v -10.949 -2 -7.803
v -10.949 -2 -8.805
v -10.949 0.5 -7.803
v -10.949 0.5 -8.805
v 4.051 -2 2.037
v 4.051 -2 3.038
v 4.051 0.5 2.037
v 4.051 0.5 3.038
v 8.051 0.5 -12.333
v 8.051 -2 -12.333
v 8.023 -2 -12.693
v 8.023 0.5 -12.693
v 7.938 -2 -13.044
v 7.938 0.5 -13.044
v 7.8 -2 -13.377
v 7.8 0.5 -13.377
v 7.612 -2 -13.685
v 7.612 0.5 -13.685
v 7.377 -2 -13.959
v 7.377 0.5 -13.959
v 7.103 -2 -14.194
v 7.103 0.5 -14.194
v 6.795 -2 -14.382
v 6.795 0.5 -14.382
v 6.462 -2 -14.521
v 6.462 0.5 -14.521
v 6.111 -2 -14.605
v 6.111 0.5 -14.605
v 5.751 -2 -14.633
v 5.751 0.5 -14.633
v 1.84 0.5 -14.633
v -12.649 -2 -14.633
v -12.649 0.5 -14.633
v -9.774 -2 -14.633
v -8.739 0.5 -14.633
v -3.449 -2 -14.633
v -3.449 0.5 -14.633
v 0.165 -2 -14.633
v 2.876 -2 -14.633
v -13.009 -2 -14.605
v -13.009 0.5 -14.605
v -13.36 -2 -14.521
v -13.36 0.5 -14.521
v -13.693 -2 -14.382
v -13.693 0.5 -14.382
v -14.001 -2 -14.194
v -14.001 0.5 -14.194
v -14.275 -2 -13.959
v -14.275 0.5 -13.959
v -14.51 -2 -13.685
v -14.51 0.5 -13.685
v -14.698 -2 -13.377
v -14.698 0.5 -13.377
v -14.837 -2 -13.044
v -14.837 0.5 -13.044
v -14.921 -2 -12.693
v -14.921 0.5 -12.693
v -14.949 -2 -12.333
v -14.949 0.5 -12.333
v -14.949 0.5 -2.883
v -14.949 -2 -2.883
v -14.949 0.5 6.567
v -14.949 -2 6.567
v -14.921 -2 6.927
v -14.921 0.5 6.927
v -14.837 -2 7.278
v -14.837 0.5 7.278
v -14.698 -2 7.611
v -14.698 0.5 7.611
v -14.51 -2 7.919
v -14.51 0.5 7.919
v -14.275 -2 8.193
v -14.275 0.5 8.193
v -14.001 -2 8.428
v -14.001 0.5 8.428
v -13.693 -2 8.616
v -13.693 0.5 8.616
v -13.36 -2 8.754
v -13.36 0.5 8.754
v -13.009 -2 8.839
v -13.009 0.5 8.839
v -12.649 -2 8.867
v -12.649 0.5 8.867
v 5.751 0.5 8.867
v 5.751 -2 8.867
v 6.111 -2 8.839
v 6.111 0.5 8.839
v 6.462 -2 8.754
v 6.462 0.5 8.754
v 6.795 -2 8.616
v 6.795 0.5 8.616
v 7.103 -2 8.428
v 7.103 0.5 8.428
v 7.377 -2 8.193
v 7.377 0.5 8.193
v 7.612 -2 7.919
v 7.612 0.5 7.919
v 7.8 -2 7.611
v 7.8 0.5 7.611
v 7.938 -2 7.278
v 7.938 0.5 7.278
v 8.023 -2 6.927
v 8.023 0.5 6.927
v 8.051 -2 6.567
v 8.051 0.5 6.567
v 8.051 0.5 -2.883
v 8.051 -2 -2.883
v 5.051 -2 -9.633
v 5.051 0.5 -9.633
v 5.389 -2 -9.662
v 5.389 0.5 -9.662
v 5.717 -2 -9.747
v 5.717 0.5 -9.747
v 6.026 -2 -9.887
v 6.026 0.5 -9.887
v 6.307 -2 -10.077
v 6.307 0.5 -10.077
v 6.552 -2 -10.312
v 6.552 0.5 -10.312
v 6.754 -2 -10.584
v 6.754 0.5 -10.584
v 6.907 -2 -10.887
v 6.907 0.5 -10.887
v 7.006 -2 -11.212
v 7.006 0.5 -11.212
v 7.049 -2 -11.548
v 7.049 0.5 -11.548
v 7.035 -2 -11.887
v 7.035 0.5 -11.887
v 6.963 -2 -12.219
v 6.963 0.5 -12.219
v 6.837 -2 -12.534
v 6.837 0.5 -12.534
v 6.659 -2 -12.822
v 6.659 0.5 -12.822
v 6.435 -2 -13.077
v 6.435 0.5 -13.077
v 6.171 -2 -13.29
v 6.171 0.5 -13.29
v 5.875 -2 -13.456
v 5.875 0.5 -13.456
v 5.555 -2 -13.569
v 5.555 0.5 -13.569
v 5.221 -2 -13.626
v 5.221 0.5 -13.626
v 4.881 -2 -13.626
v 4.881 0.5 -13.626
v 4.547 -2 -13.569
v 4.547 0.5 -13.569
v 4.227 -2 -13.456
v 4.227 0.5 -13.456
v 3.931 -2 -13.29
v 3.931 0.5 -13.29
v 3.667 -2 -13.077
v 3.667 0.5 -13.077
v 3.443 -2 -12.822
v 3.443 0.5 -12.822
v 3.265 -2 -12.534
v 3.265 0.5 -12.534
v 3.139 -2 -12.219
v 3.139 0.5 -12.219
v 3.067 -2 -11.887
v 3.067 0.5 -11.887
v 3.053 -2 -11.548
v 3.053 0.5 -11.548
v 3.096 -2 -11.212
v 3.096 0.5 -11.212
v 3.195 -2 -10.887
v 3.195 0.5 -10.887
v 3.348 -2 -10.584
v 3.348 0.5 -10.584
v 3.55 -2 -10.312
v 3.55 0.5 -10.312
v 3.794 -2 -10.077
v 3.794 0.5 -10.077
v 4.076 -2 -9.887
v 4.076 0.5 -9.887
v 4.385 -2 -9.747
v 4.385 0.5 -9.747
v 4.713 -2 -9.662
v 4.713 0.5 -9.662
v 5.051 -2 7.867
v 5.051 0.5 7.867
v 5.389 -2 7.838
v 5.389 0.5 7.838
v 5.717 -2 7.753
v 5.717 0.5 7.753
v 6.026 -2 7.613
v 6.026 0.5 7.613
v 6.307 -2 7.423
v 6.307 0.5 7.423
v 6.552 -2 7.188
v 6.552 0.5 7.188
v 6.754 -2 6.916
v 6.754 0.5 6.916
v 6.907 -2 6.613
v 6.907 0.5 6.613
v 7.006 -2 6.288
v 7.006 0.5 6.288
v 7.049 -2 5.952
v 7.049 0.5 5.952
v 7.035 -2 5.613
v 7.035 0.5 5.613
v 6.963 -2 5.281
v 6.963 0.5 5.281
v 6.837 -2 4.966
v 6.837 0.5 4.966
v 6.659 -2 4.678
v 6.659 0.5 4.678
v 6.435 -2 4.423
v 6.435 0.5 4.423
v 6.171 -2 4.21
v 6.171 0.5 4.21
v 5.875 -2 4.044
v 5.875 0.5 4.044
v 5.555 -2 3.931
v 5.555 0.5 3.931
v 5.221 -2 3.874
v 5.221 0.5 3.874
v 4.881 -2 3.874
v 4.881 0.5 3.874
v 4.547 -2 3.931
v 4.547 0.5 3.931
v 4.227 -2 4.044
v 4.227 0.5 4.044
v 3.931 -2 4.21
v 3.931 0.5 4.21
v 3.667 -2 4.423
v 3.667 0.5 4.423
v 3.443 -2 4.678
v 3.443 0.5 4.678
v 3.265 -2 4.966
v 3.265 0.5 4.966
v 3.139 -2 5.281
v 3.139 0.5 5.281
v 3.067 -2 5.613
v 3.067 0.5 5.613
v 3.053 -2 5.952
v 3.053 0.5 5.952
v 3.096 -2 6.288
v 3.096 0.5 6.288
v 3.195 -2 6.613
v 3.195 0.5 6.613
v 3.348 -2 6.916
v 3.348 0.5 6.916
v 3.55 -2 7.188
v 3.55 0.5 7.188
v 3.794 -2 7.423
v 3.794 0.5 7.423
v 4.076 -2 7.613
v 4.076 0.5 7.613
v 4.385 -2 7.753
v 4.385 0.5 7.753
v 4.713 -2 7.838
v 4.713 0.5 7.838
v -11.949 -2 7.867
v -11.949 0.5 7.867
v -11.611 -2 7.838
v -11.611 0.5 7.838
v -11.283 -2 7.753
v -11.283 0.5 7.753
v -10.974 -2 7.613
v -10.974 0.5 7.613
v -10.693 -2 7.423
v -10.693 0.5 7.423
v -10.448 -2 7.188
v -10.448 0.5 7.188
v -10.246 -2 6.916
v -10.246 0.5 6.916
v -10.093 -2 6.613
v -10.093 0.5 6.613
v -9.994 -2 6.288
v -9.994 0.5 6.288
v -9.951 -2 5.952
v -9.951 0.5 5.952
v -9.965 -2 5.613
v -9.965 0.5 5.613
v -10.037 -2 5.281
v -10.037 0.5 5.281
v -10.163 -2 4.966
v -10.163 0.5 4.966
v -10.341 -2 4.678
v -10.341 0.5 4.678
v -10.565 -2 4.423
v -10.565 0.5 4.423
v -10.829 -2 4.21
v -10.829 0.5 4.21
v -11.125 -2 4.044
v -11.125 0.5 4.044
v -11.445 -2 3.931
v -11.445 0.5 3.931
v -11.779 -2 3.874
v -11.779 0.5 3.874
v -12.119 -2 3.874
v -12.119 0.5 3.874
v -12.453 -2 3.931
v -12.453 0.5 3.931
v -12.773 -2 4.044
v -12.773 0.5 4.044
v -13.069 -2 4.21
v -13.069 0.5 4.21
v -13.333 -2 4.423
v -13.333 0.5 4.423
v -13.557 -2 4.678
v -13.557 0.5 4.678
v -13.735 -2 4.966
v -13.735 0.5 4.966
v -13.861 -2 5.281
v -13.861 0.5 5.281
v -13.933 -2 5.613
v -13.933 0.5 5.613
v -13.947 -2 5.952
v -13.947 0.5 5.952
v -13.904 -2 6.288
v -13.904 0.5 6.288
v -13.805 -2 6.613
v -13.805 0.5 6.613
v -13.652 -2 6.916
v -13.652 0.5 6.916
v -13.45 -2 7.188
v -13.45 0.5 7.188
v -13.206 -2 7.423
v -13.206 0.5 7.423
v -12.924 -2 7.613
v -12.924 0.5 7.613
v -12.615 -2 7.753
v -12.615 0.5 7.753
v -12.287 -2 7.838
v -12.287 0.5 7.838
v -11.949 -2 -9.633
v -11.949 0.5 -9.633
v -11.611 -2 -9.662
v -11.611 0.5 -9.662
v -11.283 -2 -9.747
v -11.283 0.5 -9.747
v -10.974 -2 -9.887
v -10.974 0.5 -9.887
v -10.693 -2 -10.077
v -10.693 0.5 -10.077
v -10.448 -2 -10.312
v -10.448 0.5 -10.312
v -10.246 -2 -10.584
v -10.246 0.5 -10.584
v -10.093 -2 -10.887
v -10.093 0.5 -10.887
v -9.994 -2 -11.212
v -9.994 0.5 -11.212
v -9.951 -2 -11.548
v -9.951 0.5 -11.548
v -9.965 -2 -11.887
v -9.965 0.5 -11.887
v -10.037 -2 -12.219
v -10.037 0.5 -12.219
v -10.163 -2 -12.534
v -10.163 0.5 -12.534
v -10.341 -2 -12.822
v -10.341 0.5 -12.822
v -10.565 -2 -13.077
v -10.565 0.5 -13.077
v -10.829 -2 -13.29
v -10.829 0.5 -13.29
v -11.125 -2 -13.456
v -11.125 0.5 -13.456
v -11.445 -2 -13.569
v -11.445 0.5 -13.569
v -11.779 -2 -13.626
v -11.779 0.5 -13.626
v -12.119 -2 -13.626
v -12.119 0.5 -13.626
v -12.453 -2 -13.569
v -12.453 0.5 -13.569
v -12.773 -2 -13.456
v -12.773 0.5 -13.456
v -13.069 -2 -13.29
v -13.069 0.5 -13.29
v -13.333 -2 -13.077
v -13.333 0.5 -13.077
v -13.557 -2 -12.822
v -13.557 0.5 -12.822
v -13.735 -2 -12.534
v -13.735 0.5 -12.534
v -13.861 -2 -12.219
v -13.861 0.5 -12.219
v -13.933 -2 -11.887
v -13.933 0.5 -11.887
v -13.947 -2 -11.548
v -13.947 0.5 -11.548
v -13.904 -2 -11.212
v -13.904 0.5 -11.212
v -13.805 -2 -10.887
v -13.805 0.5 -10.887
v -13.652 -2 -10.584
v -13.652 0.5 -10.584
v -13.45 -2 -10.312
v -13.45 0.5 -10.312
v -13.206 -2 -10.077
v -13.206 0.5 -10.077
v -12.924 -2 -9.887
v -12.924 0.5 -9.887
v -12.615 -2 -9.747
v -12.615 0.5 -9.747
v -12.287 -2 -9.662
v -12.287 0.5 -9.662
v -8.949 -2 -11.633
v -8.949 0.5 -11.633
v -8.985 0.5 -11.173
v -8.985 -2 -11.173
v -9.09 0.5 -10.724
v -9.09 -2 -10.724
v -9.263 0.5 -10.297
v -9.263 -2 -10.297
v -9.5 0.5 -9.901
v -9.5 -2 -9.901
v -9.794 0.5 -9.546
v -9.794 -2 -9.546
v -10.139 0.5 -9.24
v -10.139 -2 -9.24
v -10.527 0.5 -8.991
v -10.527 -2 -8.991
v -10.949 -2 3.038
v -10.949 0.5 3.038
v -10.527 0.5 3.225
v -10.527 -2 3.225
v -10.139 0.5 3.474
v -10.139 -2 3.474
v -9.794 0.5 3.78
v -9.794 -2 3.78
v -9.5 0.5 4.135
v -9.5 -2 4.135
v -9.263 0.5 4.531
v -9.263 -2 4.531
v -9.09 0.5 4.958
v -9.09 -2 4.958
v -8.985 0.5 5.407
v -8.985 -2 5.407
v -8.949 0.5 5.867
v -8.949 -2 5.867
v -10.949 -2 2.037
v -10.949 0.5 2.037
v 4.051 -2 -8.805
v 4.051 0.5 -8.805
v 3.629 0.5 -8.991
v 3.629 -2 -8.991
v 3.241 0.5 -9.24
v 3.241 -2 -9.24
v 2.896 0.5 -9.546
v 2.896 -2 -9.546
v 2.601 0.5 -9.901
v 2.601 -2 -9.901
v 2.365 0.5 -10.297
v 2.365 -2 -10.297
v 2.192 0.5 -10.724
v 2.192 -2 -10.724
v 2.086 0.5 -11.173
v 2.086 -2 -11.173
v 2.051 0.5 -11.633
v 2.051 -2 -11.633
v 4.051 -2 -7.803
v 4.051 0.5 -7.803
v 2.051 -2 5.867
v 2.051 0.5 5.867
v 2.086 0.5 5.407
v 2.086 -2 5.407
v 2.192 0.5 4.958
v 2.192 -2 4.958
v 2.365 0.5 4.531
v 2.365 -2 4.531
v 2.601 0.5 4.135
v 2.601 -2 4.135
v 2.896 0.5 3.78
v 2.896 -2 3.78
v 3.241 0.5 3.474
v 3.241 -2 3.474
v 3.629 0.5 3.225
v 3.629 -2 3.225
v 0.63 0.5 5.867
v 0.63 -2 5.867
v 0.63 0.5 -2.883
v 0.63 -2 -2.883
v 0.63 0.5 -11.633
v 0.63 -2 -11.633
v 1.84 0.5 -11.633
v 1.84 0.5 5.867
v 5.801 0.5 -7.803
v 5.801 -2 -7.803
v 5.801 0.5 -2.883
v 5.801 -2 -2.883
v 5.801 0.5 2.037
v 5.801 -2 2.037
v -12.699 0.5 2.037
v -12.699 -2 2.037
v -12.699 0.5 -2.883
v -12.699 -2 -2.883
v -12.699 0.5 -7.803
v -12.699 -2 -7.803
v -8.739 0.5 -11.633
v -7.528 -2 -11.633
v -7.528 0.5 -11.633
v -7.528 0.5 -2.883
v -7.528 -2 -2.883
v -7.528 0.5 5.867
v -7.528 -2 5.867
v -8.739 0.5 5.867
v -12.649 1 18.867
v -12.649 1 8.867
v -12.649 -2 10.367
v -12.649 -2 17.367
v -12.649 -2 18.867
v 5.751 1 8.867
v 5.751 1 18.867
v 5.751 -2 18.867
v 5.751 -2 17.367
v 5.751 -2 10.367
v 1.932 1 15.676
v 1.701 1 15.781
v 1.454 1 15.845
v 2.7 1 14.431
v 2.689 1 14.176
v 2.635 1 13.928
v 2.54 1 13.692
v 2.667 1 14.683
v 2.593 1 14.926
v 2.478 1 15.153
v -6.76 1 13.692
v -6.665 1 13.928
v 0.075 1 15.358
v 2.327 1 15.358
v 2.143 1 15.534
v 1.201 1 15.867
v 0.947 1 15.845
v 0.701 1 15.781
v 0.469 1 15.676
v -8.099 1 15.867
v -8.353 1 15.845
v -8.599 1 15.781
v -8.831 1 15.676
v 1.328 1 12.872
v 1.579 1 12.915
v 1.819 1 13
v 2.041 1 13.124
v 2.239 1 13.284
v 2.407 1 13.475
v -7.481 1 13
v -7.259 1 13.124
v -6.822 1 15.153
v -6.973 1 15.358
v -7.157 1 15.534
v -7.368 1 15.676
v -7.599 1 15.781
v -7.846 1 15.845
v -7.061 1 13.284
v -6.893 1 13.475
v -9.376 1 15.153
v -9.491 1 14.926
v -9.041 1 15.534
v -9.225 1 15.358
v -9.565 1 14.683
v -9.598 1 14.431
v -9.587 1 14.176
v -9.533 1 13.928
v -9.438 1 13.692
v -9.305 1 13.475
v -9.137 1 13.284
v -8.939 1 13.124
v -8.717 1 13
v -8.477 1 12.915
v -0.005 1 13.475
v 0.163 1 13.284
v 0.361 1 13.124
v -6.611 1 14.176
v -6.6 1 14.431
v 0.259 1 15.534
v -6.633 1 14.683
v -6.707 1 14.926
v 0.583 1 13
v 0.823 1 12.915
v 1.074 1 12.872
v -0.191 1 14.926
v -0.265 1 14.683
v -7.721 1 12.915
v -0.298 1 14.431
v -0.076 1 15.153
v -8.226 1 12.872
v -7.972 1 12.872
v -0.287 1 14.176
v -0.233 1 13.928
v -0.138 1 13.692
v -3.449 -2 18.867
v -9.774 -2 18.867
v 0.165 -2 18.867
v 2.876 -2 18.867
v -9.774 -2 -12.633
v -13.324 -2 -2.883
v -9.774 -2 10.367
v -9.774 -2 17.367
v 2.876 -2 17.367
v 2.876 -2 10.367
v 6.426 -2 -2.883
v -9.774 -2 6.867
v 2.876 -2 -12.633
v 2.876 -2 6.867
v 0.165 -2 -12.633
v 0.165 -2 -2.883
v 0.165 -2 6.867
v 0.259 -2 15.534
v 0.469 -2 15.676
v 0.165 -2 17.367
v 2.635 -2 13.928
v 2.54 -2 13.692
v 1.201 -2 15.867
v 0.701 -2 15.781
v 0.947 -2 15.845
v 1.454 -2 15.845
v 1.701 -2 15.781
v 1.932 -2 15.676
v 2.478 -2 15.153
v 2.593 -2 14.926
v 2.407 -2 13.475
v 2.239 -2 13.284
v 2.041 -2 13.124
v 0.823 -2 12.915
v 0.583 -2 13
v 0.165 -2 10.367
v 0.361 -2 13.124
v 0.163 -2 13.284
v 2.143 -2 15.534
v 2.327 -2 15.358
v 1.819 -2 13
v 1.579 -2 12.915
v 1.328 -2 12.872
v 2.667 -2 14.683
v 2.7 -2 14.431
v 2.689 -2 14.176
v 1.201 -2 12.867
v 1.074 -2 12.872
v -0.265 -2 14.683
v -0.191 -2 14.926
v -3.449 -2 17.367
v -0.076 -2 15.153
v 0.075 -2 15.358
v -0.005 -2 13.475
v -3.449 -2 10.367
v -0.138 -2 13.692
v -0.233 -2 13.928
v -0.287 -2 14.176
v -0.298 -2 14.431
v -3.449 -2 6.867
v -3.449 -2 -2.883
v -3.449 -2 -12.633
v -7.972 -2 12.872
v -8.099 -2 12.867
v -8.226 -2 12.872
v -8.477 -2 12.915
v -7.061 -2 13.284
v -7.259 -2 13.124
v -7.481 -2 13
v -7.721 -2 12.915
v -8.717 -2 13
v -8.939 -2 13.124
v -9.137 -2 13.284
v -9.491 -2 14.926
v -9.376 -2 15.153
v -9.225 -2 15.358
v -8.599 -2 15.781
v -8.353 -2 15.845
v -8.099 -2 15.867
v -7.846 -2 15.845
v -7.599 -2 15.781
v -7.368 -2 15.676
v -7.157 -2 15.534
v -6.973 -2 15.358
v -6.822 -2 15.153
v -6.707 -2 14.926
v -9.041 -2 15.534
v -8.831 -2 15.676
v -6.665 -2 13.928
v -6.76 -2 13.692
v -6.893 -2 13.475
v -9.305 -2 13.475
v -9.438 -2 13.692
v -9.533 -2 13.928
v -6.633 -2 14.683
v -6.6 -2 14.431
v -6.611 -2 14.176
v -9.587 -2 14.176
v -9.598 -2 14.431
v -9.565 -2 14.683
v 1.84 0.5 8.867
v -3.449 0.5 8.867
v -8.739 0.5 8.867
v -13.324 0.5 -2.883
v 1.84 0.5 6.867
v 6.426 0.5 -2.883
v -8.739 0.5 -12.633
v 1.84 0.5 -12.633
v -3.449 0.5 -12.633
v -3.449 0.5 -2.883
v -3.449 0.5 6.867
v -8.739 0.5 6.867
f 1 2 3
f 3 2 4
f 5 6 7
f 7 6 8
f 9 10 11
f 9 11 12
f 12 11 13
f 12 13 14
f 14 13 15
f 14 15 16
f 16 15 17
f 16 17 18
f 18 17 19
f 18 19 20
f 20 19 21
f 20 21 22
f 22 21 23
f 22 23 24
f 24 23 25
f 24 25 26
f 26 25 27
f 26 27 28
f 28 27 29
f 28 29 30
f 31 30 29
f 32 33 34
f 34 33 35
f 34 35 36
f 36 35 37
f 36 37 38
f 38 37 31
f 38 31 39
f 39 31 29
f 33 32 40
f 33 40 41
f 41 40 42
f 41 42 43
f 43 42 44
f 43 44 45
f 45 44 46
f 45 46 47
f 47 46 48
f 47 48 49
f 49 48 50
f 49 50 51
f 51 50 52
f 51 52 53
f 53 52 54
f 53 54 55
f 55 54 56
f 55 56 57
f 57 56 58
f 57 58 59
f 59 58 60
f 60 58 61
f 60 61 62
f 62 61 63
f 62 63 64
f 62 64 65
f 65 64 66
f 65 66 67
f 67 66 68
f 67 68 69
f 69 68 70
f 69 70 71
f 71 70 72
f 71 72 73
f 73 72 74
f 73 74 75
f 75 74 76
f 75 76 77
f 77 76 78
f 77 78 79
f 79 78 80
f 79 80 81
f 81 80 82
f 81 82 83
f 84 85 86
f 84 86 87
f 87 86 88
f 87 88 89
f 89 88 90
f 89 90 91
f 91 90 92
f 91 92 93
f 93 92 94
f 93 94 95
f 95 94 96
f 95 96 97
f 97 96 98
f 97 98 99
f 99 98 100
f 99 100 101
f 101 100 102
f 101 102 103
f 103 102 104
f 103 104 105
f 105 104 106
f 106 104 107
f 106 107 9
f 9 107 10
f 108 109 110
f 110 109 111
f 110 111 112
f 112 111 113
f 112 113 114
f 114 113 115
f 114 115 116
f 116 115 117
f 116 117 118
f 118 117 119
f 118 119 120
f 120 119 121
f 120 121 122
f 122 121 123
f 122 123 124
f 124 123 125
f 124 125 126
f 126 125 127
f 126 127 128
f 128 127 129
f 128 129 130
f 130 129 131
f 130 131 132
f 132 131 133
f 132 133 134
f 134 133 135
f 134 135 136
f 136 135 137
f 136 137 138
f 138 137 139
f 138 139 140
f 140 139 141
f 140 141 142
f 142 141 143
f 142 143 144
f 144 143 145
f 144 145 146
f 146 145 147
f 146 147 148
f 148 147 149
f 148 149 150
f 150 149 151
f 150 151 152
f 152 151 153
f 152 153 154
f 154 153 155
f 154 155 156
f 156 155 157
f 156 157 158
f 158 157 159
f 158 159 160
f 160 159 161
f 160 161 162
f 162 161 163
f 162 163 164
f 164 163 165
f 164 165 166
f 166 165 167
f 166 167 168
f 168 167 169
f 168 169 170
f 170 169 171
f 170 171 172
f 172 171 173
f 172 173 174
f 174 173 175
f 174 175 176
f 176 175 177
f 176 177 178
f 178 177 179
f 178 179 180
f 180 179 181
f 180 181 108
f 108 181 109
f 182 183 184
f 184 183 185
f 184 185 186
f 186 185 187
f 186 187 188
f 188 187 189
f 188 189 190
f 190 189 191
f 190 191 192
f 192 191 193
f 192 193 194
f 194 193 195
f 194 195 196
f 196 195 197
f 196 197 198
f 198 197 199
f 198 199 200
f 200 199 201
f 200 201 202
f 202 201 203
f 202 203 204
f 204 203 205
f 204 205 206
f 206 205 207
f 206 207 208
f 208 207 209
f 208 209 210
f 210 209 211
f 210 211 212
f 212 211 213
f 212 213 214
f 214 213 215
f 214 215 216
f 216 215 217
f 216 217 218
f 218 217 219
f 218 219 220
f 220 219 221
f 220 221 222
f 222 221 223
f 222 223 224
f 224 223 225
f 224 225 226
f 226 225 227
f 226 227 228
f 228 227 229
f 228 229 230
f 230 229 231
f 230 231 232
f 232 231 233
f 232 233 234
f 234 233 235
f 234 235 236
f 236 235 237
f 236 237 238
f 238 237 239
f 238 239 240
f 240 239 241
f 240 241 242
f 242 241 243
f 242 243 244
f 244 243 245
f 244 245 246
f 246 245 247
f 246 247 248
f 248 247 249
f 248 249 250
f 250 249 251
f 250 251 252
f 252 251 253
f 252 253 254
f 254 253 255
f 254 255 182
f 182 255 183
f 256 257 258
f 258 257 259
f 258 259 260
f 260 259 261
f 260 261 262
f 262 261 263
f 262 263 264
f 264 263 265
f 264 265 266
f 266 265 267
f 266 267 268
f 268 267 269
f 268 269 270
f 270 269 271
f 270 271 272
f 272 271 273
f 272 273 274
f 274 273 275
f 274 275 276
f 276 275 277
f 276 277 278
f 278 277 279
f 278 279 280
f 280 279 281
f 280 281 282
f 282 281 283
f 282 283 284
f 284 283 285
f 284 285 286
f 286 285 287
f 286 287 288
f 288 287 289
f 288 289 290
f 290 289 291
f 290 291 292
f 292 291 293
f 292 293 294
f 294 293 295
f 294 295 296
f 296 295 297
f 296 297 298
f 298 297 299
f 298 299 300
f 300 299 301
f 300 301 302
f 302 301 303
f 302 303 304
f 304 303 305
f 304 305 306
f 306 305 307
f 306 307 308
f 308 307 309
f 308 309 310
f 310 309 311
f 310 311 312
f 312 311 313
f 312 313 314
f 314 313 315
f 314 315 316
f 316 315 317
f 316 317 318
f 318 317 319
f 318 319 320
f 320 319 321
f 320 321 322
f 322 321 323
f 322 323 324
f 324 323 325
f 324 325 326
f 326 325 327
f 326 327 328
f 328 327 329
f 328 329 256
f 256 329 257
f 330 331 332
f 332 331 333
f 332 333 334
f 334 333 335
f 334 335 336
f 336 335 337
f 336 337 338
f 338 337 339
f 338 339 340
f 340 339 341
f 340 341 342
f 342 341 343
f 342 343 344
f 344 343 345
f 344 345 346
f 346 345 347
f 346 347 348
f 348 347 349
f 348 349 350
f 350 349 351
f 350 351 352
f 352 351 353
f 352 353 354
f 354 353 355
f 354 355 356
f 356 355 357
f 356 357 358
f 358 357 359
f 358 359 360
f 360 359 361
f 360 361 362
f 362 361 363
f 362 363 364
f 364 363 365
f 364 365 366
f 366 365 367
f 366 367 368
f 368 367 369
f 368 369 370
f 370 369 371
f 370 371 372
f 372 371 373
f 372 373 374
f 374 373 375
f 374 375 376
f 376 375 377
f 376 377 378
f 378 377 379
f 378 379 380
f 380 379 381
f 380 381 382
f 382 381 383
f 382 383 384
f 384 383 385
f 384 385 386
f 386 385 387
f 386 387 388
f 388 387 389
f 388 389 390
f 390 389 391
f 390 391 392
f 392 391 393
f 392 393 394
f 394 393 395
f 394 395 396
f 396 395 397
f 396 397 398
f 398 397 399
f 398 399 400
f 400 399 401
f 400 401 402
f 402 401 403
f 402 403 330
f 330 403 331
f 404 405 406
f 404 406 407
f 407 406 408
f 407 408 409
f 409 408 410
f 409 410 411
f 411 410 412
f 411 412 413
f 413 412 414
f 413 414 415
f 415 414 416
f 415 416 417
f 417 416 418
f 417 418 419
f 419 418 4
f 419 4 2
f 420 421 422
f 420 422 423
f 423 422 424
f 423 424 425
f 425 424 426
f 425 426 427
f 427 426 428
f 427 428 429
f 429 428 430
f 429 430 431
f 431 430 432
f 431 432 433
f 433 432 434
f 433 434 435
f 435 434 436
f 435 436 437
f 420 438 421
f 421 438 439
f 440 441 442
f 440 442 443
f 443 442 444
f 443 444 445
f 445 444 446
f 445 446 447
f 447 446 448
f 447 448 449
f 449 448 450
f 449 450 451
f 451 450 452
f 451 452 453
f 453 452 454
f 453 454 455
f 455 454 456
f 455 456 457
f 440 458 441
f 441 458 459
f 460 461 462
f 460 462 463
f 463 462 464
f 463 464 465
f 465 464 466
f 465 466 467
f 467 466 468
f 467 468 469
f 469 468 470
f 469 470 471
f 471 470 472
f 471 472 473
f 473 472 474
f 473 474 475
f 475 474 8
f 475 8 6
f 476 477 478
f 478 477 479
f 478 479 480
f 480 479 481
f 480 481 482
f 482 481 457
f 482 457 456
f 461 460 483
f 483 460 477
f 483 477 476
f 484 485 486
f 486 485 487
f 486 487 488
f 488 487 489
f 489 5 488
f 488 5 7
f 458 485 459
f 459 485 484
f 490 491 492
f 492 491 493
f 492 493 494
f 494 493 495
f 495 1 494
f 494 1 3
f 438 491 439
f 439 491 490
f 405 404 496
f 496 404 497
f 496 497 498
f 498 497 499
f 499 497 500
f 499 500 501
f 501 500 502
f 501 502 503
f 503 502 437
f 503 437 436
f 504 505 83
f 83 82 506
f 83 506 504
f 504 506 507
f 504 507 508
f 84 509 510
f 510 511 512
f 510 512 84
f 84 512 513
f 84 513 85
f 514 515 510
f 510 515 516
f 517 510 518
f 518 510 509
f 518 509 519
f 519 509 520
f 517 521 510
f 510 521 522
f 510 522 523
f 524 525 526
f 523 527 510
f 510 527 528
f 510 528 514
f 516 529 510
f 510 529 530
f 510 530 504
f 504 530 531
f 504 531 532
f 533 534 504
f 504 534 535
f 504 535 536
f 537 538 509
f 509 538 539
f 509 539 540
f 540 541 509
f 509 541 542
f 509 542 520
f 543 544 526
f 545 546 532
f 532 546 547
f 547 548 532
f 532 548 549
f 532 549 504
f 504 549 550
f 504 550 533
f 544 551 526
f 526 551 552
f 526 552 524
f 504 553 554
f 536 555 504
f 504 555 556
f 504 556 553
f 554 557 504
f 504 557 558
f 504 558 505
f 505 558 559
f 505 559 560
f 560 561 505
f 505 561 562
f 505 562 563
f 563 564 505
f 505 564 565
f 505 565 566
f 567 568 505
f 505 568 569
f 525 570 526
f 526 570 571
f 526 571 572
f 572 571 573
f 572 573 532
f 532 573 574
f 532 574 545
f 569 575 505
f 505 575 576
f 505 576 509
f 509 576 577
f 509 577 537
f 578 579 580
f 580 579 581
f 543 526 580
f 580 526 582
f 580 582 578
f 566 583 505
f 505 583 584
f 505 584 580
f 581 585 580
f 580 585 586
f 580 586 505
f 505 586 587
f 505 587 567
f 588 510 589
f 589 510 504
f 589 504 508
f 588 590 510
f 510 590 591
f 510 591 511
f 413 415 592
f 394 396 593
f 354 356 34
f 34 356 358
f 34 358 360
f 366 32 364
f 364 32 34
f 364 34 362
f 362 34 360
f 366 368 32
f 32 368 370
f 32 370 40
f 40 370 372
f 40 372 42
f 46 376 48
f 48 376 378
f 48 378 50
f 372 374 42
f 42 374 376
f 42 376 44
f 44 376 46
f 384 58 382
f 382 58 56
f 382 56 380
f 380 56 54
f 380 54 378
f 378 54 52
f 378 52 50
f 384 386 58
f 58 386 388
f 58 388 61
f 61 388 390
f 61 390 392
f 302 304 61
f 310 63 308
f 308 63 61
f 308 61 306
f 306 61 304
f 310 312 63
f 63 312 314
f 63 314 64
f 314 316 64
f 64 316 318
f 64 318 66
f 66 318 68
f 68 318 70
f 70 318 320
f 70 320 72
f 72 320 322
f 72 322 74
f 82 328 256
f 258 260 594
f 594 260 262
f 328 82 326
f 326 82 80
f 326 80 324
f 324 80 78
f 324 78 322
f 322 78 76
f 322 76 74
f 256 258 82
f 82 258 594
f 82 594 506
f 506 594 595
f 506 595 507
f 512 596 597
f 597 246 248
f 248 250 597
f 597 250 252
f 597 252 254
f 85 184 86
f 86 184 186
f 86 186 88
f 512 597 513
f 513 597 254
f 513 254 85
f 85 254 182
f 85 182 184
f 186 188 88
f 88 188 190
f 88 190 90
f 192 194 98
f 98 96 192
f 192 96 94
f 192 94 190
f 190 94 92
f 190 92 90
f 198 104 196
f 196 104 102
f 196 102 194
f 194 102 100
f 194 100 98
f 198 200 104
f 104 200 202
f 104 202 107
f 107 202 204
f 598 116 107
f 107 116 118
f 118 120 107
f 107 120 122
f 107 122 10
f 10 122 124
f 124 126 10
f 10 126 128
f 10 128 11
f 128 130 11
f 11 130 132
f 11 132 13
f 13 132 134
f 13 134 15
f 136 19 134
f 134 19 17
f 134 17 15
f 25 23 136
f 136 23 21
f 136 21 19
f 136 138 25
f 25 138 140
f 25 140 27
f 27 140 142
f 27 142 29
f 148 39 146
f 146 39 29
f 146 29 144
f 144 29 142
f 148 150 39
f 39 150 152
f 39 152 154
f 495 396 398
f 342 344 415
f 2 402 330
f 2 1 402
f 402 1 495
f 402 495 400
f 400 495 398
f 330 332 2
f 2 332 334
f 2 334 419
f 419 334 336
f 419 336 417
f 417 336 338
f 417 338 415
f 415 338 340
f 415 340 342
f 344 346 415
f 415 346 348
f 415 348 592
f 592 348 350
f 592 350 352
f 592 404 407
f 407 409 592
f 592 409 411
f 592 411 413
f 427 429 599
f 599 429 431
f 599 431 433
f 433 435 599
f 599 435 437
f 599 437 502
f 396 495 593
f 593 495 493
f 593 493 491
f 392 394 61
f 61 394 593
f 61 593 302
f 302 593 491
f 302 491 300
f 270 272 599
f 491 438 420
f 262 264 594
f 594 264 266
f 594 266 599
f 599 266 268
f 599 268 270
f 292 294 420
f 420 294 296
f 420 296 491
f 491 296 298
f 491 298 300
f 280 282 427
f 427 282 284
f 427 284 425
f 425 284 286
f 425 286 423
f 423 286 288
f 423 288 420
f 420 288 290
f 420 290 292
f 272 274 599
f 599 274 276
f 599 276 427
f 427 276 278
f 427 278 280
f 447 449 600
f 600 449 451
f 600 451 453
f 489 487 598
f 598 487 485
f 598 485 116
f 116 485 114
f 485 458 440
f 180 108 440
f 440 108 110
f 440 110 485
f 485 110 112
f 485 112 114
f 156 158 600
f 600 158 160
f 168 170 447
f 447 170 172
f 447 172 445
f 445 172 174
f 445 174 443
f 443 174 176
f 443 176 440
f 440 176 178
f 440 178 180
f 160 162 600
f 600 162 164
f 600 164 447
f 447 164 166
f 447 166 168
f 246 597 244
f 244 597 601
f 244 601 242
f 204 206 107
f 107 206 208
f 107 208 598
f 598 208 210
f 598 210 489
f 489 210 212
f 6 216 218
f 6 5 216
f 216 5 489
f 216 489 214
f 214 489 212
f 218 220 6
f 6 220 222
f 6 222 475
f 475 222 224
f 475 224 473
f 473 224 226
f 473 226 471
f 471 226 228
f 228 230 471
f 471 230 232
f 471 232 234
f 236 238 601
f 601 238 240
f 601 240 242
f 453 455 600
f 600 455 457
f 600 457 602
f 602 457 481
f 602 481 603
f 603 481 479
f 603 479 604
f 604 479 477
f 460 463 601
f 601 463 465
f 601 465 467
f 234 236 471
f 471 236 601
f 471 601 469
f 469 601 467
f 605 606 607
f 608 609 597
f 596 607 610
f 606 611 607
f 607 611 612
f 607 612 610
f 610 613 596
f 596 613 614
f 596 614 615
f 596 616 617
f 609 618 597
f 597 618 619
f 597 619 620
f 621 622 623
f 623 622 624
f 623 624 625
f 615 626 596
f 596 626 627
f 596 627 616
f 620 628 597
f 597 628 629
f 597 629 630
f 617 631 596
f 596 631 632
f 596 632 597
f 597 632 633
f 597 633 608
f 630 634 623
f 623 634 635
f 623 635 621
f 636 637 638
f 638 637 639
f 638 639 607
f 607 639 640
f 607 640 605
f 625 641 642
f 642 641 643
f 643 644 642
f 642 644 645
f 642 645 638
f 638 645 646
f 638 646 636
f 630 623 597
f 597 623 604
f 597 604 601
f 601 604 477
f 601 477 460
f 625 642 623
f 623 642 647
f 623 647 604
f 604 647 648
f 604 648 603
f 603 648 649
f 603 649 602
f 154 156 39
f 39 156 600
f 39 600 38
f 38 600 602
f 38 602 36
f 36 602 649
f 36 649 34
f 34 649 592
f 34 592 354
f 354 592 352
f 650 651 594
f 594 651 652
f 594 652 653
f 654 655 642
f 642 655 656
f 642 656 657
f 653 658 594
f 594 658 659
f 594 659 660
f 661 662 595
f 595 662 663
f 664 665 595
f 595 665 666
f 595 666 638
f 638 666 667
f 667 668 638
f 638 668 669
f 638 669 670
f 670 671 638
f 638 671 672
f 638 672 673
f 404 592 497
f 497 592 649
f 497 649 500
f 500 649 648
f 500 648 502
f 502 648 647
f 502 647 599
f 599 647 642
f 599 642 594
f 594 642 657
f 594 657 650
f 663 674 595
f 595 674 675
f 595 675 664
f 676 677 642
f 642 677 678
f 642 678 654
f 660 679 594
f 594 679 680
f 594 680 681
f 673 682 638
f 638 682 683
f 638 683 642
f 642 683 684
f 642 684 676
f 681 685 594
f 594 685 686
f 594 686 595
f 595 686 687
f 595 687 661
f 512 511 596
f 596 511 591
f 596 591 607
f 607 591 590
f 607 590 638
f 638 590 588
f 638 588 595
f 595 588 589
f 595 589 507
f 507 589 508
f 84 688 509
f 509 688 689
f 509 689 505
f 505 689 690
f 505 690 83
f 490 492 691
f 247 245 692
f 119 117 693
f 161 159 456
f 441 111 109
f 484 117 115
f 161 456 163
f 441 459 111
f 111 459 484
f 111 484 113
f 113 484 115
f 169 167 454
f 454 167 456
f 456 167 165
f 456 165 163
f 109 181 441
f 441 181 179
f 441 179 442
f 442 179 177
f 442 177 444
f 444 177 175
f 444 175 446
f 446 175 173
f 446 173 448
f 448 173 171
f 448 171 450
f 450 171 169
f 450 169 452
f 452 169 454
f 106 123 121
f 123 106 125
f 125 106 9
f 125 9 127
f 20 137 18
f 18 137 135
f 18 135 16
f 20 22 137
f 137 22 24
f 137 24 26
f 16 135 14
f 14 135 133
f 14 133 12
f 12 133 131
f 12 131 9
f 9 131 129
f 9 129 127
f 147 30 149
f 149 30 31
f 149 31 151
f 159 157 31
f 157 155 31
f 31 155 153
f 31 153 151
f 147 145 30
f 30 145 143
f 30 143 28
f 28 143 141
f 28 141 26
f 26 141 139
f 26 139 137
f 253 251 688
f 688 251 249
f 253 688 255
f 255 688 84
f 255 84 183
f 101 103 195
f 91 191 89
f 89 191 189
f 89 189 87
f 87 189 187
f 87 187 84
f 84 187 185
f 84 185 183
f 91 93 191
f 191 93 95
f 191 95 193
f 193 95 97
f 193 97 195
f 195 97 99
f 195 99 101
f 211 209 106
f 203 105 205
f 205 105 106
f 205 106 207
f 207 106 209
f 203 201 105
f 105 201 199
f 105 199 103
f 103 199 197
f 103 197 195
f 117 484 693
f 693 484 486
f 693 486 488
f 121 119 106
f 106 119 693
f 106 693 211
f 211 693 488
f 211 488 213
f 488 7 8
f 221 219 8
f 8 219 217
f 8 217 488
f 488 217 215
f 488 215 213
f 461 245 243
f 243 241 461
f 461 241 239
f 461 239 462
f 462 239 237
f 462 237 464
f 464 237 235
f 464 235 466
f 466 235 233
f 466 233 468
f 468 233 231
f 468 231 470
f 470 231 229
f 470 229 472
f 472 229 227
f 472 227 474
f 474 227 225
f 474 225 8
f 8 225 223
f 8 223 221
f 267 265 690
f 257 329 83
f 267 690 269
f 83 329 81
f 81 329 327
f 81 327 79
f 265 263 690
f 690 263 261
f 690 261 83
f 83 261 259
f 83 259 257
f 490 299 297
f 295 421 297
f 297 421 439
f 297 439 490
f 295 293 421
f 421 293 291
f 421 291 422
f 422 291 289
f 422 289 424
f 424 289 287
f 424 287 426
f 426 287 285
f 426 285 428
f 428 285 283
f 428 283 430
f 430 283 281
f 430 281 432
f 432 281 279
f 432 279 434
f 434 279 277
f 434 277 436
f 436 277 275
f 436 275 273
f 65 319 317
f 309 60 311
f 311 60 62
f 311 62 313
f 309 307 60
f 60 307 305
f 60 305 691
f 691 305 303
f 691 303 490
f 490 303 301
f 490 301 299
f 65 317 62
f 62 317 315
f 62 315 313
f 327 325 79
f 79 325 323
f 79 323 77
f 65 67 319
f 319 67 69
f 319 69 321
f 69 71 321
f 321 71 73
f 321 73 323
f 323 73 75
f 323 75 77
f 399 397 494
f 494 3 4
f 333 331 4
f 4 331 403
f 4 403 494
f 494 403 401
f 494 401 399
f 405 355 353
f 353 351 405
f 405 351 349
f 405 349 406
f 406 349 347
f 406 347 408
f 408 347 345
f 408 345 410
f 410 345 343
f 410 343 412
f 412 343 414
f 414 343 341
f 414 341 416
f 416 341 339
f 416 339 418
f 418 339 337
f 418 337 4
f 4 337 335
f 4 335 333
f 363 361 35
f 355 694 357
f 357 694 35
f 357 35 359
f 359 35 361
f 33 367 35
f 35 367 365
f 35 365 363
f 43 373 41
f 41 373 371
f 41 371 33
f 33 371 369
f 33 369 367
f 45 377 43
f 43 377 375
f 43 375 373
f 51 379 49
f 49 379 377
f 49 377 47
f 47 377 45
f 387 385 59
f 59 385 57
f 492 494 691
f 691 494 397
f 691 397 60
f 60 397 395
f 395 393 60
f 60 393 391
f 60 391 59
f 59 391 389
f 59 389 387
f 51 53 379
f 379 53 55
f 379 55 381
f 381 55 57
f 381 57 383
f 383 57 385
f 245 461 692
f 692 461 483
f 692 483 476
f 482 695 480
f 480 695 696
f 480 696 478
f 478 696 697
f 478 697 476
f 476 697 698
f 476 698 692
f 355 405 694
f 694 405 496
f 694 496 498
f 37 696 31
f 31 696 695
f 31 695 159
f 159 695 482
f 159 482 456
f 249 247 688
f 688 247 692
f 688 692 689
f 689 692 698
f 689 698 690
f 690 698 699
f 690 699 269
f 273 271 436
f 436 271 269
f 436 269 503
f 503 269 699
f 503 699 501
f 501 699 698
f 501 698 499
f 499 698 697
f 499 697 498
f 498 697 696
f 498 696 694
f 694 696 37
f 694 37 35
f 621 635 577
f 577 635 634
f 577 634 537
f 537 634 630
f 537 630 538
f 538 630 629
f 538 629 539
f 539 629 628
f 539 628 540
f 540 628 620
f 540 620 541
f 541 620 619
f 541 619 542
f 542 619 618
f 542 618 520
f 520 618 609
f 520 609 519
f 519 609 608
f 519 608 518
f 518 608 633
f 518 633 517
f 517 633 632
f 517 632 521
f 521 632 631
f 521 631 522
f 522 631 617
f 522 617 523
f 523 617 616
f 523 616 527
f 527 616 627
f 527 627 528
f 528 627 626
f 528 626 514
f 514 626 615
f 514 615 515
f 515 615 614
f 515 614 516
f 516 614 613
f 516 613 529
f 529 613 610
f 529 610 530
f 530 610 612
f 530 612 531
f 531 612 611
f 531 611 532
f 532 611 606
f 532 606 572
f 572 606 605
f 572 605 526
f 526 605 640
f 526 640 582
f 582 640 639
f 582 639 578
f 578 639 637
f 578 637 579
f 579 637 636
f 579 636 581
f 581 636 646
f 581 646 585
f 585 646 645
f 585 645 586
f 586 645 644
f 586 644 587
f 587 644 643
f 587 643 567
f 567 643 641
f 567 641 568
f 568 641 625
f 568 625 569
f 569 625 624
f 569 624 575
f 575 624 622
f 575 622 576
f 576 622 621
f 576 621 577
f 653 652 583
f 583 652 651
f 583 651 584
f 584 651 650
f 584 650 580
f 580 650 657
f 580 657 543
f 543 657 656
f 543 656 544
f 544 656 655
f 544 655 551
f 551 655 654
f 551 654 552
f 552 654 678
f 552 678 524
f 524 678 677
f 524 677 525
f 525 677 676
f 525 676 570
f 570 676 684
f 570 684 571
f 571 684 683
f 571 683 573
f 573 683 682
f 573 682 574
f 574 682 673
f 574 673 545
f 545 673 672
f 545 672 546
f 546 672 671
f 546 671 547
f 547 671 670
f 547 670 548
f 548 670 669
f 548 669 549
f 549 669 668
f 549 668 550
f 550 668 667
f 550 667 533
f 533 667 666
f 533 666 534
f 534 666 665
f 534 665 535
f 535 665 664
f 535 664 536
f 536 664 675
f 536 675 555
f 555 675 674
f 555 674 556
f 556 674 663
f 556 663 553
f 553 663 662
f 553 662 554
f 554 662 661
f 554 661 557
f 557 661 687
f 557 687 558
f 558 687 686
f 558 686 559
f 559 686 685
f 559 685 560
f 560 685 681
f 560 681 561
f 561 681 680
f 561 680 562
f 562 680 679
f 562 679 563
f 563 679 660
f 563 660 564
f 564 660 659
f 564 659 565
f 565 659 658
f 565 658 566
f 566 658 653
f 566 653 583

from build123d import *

# Parameters (mm, degrees)
BOSS_EXTRUDE1_DEPTH      = 2
CUT_EXTRUDE2_DEPTH       = 1
SKETCH5_R                = 2
CUT_EXTRUDE3_DEPTH       = 21.942838525
CUT_EXTRUDE4_DEPTH       = 21.942838525
SKETCH7_W                = 18.4
SKETCH7_H                = 1
BOSS_EXTRUDE2_DEPTH      = 10
CUT_EXTRUDE6_DEPTH       = 1
SKETCH11_W               = 1.421057218
SKETCH11_H               = 17.5
SKETCH11_W_2             = 1.75
SKETCH11_H_2             = 9.84
CUT_EXTRUDE7_DEPTH       = 25.092211634
BOSS_EXTRUDE3_START      = 2
BOSS_EXTRUDE3_DEPTH      = 2
CUT_EXTRUDE8_DEPTH       = 25.154392176
CUT_EXTRUDE8_DEPTH_BACK  = 25.154392176
CUT_EXTRUDE9_DEPTH       = 25.154392176
CUT_EXTRUDE9_DEPTH_BACK  = 25.154392176
CUT_EXTRUDE12_DEPTH      = 25.154392176
CUT_EXTRUDE12_DEPTH_BACK = 25.154392176
SKETCH17_R               = 2
BOSS_EXTRUDE4_START      = 1
BOSS_EXTRUDE4_DEPTH      = 1
CUT_EXTRUDE13_DEPTH      = 25.257672217
CUT_EXTRUDE13_DEPTH_BACK = 25.257672217
SKETCH19_R               = 2
CUT_EXTRUDE14_START      = -1.5
CUT_EXTRUDE14_DEPTH      = 1.5
SKETCH22_R               = 1.5
CUT_EXTRUDE17_DEPTH      = 10


with BuildPart() as part:
    # Sketch1 → Boss-Extrude1 (new body)
    with BuildSketch(Plane(origin=(0, 0, 0), x_dir=(1, 0, 0), z_dir=(0, 1, 0))):
        with BuildLine():
            Line((-12.649074074, 14.633101852), (5.750925926, 14.633101852))
            ThreePointArc((5.750925926, 14.633101852), (7.377271523, 13.959447449), (8.050925926, 12.333101852))
            Line((8.050925926, 12.333101852), (8.050925926, -6.566898148))
            ThreePointArc((8.050925926, -6.566898148), (7.377271523, -8.193243745), (5.750925926, -8.866898148))
            Line((5.750925926, -8.866898148), (-12.649074074, -8.866898148))
            ThreePointArc((-12.649074074, -8.866898148), (-14.275419671, -8.193243745), (-14.949074074, -6.566898148))
            Line((-14.949074074, -6.566898148), (-14.949074074, 12.333101852))
            ThreePointArc((-14.949074074, 12.333101852), (-14.275419671, 13.959447449), (-12.649074074, 14.633101852))
        make_face()
    extrude(amount=BOSS_EXTRUDE1_DEPTH)

    # Sketch2 → Cut-Extrude2 (cut)
    with BuildSketch(Plane(origin=(0, 2, 0), x_dir=(1, 0, 0), z_dir=(0, 1, 0))):
        with BuildLine():
            Line((5.750925926, 13.633101852), (-12.649074074, 13.633101852))
            ThreePointArc((-12.649074074, 13.633101852), (-13.56831289, 13.252340667), (-13.949074074, 12.333101852))
            Line((-13.949074074, 12.333101852), (-13.949074074, -6.566898148))
            ThreePointArc((-13.949074074, -6.566898148), (-13.56831289, -7.486136964), (-12.649074074, -7.866898148))
            Line((-12.649074074, -7.866898148), (5.750925926, -7.866898148))
            ThreePointArc((5.750925926, -7.866898148), (6.670164741, -7.486136964), (7.050925926, -6.566898148))
            Line((7.050925926, -6.566898148), (7.050925926, 12.333101852))
            ThreePointArc((7.050925926, 12.333101852), (6.670164741, 13.252340667), (5.750925926, 13.633101852))
        make_face()
    extrude(amount=-CUT_EXTRUDE2_DEPTH, mode=Mode.SUBTRACT)

    # Sketch5 → Cut-Extrude3 (cut, through all)
    with BuildSketch(Plane(origin=(0, 1, 0), x_dir=(1, 0, 0), z_dir=(0, 1, 0))):
        with Locations(Location((5.050925926, 11.633101852, 0), (0, 0, 270))):
            Circle(SKETCH5_R)
        with Locations(Location((5.050925926, -5.866898148, 0), (0, 0, 270))):
            Circle(SKETCH5_R)
        with Locations(Location((-11.949074074, -5.866898148, 0), (0, 0, 270))):
            Circle(SKETCH5_R)
        with Locations(Location((-11.949074074, 11.633101852, 0), (0, 0, 90))):
            Circle(SKETCH5_R)
    extrude(amount=-CUT_EXTRUDE3_DEPTH, mode=Mode.SUBTRACT)

    # Sketch6 → Cut-Extrude4 (cut, through all)
    with BuildSketch(Plane(origin=(0, 1, 0), x_dir=(1, 0, 0), z_dir=(0, 1, 0))):
        with BuildLine():
            Line((4.050925926, -3.038471023), (4.050925926, 8.804674727))
            ThreePointArc((4.050925926, 8.804674727), (2.601436183, 9.901051044), (2.050925926, 11.633101852))
            Line((2.050925926, 11.633101852), (2.050925926, -5.866898148))
            ThreePointArc((2.050925926, -5.866898148), (2.601436183, -4.134847341), (4.050925926, -3.038471023))
        make_face()
        with BuildLine():
            Line((-10.949074074, 8.804674727), (-10.949074074, -3.038471023))
            ThreePointArc((-10.949074074, -3.038471023), (-9.499584331, -4.134847341), (-8.949074074, -5.866898148))
            Line((-8.949074074, -5.866898148), (-8.949074074, 11.633101852))
            ThreePointArc((-8.949074074, 11.633101852), (-9.499584331, 9.901051044), (-10.949074074, 8.804674727))
        make_face()
    extrude(amount=-CUT_EXTRUDE4_DEPTH, mode=Mode.SUBTRACT)

    # Sketch7 → Boss-Extrude2 (add)
    with BuildSketch(Plane.XY.offset(8.866898148)):
        with Locations((-3.449074074, 0.5)):
            Rectangle(SKETCH7_W, SKETCH7_H)
    extrude(amount=BOSS_EXTRUDE2_DEPTH)

    # Sketch9 → Cut-Extrude6 (cut)
    with BuildSketch(Plane(origin=(0, 2, 0), x_dir=(1, 0, 0), z_dir=(0, 1, 0))):
        with BuildLine():
            Line((5.750925926, 13.833101852), (-12.649074074, 13.833101852))
            ThreePointArc((-12.649074074, 13.833101852), (-13.709734246, 13.393762024), (-14.149074074, 12.333101852))
            Line((-14.149074074, 12.333101852), (-14.149074074, -6.566898148))
            ThreePointArc((-14.149074074, -6.566898148), (-13.709734246, -7.62755832), (-12.649074074, -8.066898148))
            Line((-12.649074074, -8.066898148), (5.750925926, -8.066898148))
            ThreePointArc((5.750925926, -8.066898148), (6.811586098, -7.62755832), (7.250925926, -6.566898148))
            Line((7.250925926, -6.566898148), (7.250925926, 12.333101852))
            ThreePointArc((7.250925926, 12.333101852), (6.811586098, 13.393762024), (5.750925926, 13.833101852))
        make_face()
    extrude(amount=-CUT_EXTRUDE6_DEPTH, mode=Mode.SUBTRACT)

    # Sketch11 → Cut-Extrude7 (cut, through all)
    with BuildSketch(Plane(origin=(0, 1, 0), x_dir=(1, 0, 0), z_dir=(0, 1, 0))):
        with Locations((-8.238545465, 2.883101852)):
            Rectangle(SKETCH11_W, SKETCH11_H)
        with Locations((1.340397317, 2.883101852)):
            Rectangle(SKETCH11_W, SKETCH11_H)
        with Locations((-11.824074074, 2.883101852)):
            Rectangle(SKETCH11_W_2, SKETCH11_H_2)
        with Locations((4.925925926, 2.883101852)):
            Rectangle(SKETCH11_W_2, SKETCH11_H_2)
    extrude(amount=-CUT_EXTRUDE7_DEPTH, mode=Mode.SUBTRACT)

    # Sketch12 → Boss-Extrude3 (add)
    with BuildSketch(Plane.XZ.offset(BOSS_EXTRUDE3_START)):
        with BuildLine():
            Line((8.050925926, -12.333101852), (8.050925926, 6.566898148))
            ThreePointArc((8.050925926, 6.566898148), (7.377271523, 8.193243745), (5.750925926, 8.866898148))
            Line((5.750925926, 8.866898148), (5.750925926, 18.866898148))
            Line((5.750925926, 18.866898148), (-12.649074074, 18.866898148))
            Line((-12.649074074, 18.866898148), (-12.649074074, 8.866898148))
            ThreePointArc((-12.649074074, 8.866898148), (-14.275419671, 8.193243745), (-14.949074074, 6.566898148))
            Line((-14.949074074, 6.566898148), (-14.949074074, -12.333101852))
            ThreePointArc((-14.949074074, -12.333101852), (-14.275419671, -13.959447449), (-12.649074074, -14.633101852))
            Line((-12.649074074, -14.633101852), (5.750925926, -14.633101852))
            ThreePointArc((5.750925926, -14.633101852), (7.377271523, -13.959447449), (8.050925926, -12.333101852))
        make_face()
    extrude(amount=-BOSS_EXTRUDE3_DEPTH)

    # Sketch13 → Cut-Extrude8 (cut, two sides: drawn at the far end of the back side and taken through both)
    with BuildSketch(Plane(origin=(0, 0, 0), x_dir=(1, 0, 0), z_dir=(0, 1, 0)).offset(-CUT_EXTRUDE8_DEPTH_BACK)):
        with BuildLine():
            Line((-12.699074074, 7.803101852), (-12.699074074, -2.036898148))
            Line((-12.699074074, -2.036898148), (-10.949074074, -2.036898148))
            Line((-10.949074074, -2.036898148), (-10.949074074, -3.038471023))
            ThreePointArc((-10.949074074, -3.038471023), (-9.499584331, -4.134847341), (-8.949074074, -5.866898148))
            Line((-8.949074074, -5.866898148), (-7.528016856, -5.866898148))
            Line((-7.528016856, -5.866898148), (-7.528016856, 11.633101852))
            Line((-7.528016856, 11.633101852), (-8.949074074, 11.633101852))
            ThreePointArc((-8.949074074, 11.633101852), (-9.499584331, 9.901051044), (-10.949074074, 8.804674727))
            Line((-10.949074074, 8.804674727), (-10.949074074, 7.803101852))
            Line((-10.949074074, 7.803101852), (-12.699074074, 7.803101852))
        make_face()
    extrude(amount=CUT_EXTRUDE8_DEPTH + CUT_EXTRUDE8_DEPTH_BACK, mode=Mode.SUBTRACT)

    # Sketch14 → Cut-Extrude9 (cut, two sides: drawn at the far end of the back side and taken through both)
    with BuildSketch(Plane(origin=(0, 0, 0), x_dir=(1, 0, 0), z_dir=(0, 1, 0)).offset(-CUT_EXTRUDE9_DEPTH_BACK)):
        with BuildLine():
            Line((0.629868708, -5.866898148), (2.050925926, -5.866898148))
            ThreePointArc((2.050925926, -5.866898148), (2.601436183, -4.134847341), (4.050925926, -3.038471023))
            Line((4.050925926, -3.038471023), (4.050925926, -2.036898148))
            Line((4.050925926, -2.036898148), (5.800925926, -2.036898148))
            Line((5.800925926, -2.036898148), (5.800925926, 7.803101852))
            Line((5.800925926, 7.803101852), (4.050925926, 7.803101852))
            Line((4.050925926, 7.803101852), (4.050925926, 8.804674727))
            ThreePointArc((4.050925926, 8.804674727), (2.601436183, 9.901051044), (2.050925926, 11.633101852))
            Line((2.050925926, 11.633101852), (0.629868708, 11.633101852))
            Line((0.629868708, 11.633101852), (0.629868708, -5.866898148))
        make_face()
    extrude(amount=CUT_EXTRUDE9_DEPTH + CUT_EXTRUDE9_DEPTH_BACK, mode=Mode.SUBTRACT)

    # Sketch17 → Cut-Extrude12 (cut, two sides: drawn at the far end of the back side and taken through both)
    with BuildSketch(Plane(origin=(0, 0, 0), x_dir=(1, 0, 0), z_dir=(0, 1, 0)).offset(-CUT_EXTRUDE12_DEPTH_BACK)):
        with Locations(Location((-11.949074074, -5.866898148, 0), (0, 0, 270))):
            Circle(SKETCH17_R)
        with Locations(Location((5.050925926, -5.866898148, 0), (0, 0, 270))):
            Circle(SKETCH17_R)
        with Locations(Location((-11.949074074, 11.633101852, 0), (0, 0, 270))):
            Circle(SKETCH17_R)
        with Locations(Location((5.050925926, 11.633101852, 0), (0, 0, 270))):
            Circle(SKETCH17_R)
    extrude(amount=CUT_EXTRUDE12_DEPTH + CUT_EXTRUDE12_DEPTH_BACK, mode=Mode.SUBTRACT)

    # Sketch18 → Boss-Extrude4 (add)
    with BuildSketch(Plane(origin=(0, 1, 0), x_dir=(1, 0, 0), z_dir=(0, 1, 0)).offset(BOSS_EXTRUDE4_START)):
        with BuildLine():
            Line((5.750925926, 13.833101852), (-12.649074074, 13.833101852))
            ThreePointArc((-12.649074074, 13.833101852), (-13.709734246, 13.393762024), (-14.149074074, 12.333101852))
            Line((-14.149074074, 12.333101852), (-14.149074074, -6.566898148))
            ThreePointArc((-14.149074074, -6.566898148), (-13.709734246, -7.62755832), (-12.649074074, -8.066898148))
            Line((-12.649074074, -8.066898148), (5.750925926, -8.066898148))
            ThreePointArc((5.750925926, -8.066898148), (6.811586098, -7.62755832), (7.250925926, -6.566898148))
            Line((7.250925926, -6.566898148), (7.250925926, 12.333101852))
            ThreePointArc((7.250925926, 12.333101852), (6.811586098, 13.393762024), (5.750925926, 13.833101852))
        make_face()
    extrude(amount=-BOSS_EXTRUDE4_DEPTH)

    # Sketch19 → Cut-Extrude13 (cut, two sides: drawn at the far end of the back side and taken through both)
    with BuildSketch(Plane.XZ.offset(-1).offset(-CUT_EXTRUDE13_DEPTH_BACK)):
        with Locations(Location((5.050925926, -11.633101852, 0), (0, 0, 90))):
            Circle(SKETCH19_R)
        with Locations(Location((-11.949074074, -11.633101852, 0), (0, 0, 90))):
            Circle(SKETCH19_R)
        with Locations(Location((-11.949074074, 5.866898148, 0), (0, 0, 90))):
            Circle(SKETCH19_R)
        with Locations(Location((5.050925926, 5.866898148, 0), (0, 0, 90))):
            Circle(SKETCH19_R)
        with BuildLine():
            Line((-10.949074074, 3.038471023), (-10.949074074, 2.036898148))
            Line((-10.949074074, 2.036898148), (-12.699074074, 2.036898148))
            Line((-12.699074074, 2.036898148), (-12.699074074, -7.803101852))
            Line((-12.699074074, -7.803101852), (-10.949074074, -7.803101852))
            Line((-10.949074074, -7.803101852), (-10.949074074, -8.804674727))
            ThreePointArc((-10.949074074, -8.804674727), (-9.499584331, -9.901051044), (-8.949074074, -11.633101852))
            Line((-8.949074074, -11.633101852), (-7.528016856, -11.633101852))
            Line((-7.528016856, -11.633101852), (-7.528016856, 5.866898148))
            Line((-7.528016856, 5.866898148), (-8.949074074, 5.866898148))
            ThreePointArc((-8.949074074, 5.866898148), (-9.499584331, 4.134847341), (-10.949074074, 3.038471023))
        make_face()
        with BuildLine():
            Line((4.050925926, 2.036898148), (4.050925926, 3.038471023))
            ThreePointArc((4.050925926, 3.038471023), (2.601436183, 4.134847341), (2.050925926, 5.866898148))
            Line((2.050925926, 5.866898148), (0.629868708, 5.866898148))
            Line((0.629868708, 5.866898148), (0.629868708, -11.633101852))
            Line((0.629868708, -11.633101852), (2.050925926, -11.633101852))
            ThreePointArc((2.050925926, -11.633101852), (2.601436183, -9.901051044), (4.050925926, -8.804674727))
            Line((4.050925926, -8.804674727), (4.050925926, -7.803101852))
            Line((4.050925926, -7.803101852), (5.800925926, -7.803101852))
            Line((5.800925926, -7.803101852), (5.800925926, 2.036898148))
            Line((5.800925926, 2.036898148), (4.050925926, 2.036898148))
        make_face()
    extrude(amount=CUT_EXTRUDE13_DEPTH + CUT_EXTRUDE13_DEPTH_BACK, mode=Mode.SUBTRACT)

    # Sketch20 → Cut-Extrude14 (cut)
    with BuildSketch(Plane(origin=(0, 2, 0), x_dir=(1, 0, 0), z_dir=(0, 1, 0)).offset(CUT_EXTRUDE14_START)):
        with BuildLine():
            Line((5.750925926, 14.633101852), (-12.649074074, 14.633101852))
            ThreePointArc((-12.649074074, 14.633101852), (-14.275419671, 13.959447449), (-14.949074074, 12.333101852))
            Line((-14.949074074, 12.333101852), (-14.949074074, -6.566898148))
            ThreePointArc((-14.949074074, -6.566898148), (-14.275419671, -8.193243745), (-12.649074074, -8.866898148))
            Line((-12.649074074, -8.866898148), (5.750925926, -8.866898148))
            ThreePointArc((5.750925926, -8.866898148), (7.377271523, -8.193243745), (8.050925926, -6.566898148))
            Line((8.050925926, -6.566898148), (8.050925926, 12.333101852))
            ThreePointArc((8.050925926, 12.333101852), (7.377271523, 13.959447449), (5.750925926, 14.633101852))
        make_face()
    extrude(amount=CUT_EXTRUDE14_DEPTH, mode=Mode.SUBTRACT)

    # Sketch22 → Cut-Extrude17 (cut)
    with BuildSketch(Plane(origin=(0, 1, 0), x_dir=(1, 0, 0), z_dir=(0, 1, 0))):
        with Locations(Location((-8.099074074, -14.366898148, 0), (0, 0, 270))):
            Circle(SKETCH22_R)
        with Locations(Location((1.200925926, -14.366898148, 0), (0, 0, 270))):
            Circle(SKETCH22_R)
    extrude(amount=-CUT_EXTRUDE17_DEPTH, mode=Mode.SUBTRACT)


solid = part.part
